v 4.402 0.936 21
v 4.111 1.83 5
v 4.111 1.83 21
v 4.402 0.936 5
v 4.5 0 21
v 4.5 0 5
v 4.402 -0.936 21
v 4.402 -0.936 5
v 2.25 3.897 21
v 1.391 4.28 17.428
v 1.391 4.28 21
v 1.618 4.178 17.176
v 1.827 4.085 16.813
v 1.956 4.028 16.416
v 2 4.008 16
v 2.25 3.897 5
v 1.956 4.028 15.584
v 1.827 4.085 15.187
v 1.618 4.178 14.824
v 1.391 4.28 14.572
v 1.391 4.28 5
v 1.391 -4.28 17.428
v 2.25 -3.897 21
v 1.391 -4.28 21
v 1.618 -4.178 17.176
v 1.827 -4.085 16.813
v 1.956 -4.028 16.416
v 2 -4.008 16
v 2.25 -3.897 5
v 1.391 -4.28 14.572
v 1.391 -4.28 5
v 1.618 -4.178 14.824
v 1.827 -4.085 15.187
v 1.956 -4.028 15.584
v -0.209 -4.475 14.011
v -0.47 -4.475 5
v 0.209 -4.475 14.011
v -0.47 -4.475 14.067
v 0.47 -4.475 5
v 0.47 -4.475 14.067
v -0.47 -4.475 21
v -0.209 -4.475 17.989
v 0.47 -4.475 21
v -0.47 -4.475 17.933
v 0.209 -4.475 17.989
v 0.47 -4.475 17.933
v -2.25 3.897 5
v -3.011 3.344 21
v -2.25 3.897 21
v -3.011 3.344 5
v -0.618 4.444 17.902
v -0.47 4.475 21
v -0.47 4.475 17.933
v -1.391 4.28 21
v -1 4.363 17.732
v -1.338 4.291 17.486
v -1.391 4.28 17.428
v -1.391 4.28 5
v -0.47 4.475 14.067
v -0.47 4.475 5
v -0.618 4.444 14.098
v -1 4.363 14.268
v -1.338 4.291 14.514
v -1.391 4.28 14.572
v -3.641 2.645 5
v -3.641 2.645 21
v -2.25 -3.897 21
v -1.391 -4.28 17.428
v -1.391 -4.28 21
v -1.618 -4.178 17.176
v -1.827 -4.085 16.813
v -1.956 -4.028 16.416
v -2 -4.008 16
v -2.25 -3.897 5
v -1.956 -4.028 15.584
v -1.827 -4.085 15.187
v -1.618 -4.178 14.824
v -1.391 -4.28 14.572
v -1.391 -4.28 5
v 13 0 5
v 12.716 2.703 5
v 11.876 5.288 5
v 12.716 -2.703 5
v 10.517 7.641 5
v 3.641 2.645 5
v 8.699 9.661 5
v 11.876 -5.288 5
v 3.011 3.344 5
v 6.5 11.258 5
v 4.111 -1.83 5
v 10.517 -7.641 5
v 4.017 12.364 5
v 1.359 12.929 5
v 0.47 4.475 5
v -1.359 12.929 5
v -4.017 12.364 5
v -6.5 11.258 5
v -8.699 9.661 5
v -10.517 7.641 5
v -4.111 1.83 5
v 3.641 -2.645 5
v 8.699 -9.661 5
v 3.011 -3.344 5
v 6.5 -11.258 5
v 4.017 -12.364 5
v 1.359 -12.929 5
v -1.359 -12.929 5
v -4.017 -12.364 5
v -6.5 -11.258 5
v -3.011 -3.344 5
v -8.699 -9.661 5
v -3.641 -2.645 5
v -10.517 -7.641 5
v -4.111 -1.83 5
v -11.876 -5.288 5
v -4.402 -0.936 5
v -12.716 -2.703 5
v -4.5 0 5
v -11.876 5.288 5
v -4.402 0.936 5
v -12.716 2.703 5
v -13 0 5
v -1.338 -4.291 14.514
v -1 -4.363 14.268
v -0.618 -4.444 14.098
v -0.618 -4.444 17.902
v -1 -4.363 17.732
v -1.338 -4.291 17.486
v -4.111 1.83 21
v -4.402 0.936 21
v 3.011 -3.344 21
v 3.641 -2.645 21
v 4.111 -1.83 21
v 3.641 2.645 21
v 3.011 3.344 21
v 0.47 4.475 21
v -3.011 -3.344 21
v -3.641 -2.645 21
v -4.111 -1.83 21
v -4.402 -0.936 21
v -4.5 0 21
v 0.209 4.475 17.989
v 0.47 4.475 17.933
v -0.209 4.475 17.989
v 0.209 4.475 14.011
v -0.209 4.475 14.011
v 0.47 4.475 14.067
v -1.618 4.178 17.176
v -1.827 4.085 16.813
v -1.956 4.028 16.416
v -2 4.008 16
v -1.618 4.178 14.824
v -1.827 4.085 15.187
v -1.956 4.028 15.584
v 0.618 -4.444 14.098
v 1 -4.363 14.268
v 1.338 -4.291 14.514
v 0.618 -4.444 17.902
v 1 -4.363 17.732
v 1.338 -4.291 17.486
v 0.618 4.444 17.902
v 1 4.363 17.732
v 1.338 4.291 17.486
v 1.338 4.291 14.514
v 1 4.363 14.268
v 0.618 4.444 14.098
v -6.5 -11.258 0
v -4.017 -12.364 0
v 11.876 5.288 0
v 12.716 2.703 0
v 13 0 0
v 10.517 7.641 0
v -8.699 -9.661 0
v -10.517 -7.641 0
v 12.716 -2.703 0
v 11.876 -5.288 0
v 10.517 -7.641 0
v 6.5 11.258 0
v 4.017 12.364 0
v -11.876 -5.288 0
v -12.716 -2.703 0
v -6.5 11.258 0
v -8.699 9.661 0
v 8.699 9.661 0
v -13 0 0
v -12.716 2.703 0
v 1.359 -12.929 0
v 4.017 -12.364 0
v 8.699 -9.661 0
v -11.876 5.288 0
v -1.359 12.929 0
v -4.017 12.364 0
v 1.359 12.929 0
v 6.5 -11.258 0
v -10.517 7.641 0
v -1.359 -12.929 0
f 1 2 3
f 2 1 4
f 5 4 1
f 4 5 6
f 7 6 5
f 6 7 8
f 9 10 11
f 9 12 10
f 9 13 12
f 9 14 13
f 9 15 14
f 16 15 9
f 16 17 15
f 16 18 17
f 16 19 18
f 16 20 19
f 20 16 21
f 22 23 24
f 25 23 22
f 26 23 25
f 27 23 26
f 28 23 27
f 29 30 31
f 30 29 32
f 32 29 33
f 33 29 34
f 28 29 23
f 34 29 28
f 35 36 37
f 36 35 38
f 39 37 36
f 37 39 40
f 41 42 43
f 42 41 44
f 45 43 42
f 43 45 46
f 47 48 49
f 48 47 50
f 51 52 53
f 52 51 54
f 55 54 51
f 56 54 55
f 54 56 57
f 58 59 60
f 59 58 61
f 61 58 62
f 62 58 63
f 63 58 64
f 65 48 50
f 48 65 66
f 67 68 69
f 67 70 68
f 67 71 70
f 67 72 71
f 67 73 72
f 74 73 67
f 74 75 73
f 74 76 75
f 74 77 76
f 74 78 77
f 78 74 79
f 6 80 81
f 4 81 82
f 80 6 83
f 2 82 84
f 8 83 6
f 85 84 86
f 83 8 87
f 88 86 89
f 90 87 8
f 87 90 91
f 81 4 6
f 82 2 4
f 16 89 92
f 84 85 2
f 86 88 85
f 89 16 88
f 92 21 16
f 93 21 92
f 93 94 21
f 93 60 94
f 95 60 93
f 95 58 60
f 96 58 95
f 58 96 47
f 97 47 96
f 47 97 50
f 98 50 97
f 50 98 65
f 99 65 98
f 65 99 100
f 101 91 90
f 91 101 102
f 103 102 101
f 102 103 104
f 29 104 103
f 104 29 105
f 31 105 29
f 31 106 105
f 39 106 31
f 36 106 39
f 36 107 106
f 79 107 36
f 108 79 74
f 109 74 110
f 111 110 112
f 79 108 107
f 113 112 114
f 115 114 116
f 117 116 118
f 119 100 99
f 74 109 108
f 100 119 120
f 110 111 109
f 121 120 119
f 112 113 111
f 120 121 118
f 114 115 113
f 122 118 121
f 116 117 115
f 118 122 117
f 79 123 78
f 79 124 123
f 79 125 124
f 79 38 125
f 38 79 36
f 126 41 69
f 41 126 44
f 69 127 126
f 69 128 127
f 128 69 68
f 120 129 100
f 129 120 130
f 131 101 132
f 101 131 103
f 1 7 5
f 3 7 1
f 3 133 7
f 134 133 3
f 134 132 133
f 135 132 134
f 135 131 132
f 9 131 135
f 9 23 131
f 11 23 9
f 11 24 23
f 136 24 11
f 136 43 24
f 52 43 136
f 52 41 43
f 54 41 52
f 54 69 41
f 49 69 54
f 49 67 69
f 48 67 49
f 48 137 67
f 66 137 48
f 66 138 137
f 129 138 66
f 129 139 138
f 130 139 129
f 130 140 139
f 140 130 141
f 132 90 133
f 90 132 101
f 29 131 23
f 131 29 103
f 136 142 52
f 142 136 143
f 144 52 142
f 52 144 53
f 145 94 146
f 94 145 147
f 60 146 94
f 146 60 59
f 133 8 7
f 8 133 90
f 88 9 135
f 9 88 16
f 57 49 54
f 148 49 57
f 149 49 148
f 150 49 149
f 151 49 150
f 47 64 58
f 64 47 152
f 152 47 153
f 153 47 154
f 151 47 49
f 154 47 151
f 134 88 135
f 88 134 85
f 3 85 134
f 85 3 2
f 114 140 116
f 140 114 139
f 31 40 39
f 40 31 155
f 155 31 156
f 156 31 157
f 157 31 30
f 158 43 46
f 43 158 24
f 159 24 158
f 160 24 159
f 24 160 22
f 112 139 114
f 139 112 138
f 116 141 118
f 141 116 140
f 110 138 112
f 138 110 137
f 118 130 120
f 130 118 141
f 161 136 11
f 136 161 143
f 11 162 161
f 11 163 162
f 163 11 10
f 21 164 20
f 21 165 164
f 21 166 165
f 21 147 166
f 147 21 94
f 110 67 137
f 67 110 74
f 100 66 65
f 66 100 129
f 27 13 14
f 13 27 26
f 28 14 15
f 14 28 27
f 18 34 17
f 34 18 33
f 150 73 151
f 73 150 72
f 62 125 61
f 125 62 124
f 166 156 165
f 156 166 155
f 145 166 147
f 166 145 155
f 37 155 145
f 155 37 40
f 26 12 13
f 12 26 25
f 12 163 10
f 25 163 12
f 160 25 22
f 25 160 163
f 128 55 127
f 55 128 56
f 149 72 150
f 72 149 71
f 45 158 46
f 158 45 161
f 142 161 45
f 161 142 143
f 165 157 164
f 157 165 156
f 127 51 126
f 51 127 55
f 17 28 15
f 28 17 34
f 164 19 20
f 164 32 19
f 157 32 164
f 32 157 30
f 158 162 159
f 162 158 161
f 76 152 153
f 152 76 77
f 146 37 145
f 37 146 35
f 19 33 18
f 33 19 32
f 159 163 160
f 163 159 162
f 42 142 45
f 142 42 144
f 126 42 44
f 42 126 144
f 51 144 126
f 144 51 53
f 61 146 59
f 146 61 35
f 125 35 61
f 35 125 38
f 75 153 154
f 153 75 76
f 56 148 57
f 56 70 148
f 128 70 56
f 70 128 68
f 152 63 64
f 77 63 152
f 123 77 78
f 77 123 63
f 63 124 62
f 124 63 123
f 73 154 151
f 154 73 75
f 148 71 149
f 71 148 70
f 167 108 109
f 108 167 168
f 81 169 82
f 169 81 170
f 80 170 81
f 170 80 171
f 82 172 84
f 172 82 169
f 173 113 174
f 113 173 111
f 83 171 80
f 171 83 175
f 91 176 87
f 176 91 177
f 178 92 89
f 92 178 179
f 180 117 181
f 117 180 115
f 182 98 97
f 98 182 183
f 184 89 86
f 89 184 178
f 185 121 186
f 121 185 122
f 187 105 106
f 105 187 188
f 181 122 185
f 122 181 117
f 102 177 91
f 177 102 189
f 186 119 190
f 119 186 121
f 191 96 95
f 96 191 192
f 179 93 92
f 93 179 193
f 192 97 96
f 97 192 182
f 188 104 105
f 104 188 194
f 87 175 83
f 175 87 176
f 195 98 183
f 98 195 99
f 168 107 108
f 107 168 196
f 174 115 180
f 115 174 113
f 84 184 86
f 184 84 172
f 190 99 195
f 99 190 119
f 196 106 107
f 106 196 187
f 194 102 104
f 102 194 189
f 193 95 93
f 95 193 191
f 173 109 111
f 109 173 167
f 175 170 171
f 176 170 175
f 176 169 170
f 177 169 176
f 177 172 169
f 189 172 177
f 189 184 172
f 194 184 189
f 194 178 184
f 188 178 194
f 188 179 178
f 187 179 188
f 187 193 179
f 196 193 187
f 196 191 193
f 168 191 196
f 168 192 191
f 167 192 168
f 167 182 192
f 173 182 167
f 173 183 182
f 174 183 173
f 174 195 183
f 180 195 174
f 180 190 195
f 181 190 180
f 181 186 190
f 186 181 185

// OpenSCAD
$fn = 30;
end_diameter = 26;
end_thickness = 5;
rod_diameter = 9;
rod_length = 16;
hole_size=4;

union() {
cylinder(h=end_thickness, r=end_diameter/2);
    difference() {
        translate([0, 0, end_thickness]) cylinder(h=rod_length, r=rod_diameter/2);

        translate([0,0,end_thickness+rod_length-5]) rotate([90,0,0]) cylinder(h=rod_diameter+2, d=hole_size, center=true);
        }
}
